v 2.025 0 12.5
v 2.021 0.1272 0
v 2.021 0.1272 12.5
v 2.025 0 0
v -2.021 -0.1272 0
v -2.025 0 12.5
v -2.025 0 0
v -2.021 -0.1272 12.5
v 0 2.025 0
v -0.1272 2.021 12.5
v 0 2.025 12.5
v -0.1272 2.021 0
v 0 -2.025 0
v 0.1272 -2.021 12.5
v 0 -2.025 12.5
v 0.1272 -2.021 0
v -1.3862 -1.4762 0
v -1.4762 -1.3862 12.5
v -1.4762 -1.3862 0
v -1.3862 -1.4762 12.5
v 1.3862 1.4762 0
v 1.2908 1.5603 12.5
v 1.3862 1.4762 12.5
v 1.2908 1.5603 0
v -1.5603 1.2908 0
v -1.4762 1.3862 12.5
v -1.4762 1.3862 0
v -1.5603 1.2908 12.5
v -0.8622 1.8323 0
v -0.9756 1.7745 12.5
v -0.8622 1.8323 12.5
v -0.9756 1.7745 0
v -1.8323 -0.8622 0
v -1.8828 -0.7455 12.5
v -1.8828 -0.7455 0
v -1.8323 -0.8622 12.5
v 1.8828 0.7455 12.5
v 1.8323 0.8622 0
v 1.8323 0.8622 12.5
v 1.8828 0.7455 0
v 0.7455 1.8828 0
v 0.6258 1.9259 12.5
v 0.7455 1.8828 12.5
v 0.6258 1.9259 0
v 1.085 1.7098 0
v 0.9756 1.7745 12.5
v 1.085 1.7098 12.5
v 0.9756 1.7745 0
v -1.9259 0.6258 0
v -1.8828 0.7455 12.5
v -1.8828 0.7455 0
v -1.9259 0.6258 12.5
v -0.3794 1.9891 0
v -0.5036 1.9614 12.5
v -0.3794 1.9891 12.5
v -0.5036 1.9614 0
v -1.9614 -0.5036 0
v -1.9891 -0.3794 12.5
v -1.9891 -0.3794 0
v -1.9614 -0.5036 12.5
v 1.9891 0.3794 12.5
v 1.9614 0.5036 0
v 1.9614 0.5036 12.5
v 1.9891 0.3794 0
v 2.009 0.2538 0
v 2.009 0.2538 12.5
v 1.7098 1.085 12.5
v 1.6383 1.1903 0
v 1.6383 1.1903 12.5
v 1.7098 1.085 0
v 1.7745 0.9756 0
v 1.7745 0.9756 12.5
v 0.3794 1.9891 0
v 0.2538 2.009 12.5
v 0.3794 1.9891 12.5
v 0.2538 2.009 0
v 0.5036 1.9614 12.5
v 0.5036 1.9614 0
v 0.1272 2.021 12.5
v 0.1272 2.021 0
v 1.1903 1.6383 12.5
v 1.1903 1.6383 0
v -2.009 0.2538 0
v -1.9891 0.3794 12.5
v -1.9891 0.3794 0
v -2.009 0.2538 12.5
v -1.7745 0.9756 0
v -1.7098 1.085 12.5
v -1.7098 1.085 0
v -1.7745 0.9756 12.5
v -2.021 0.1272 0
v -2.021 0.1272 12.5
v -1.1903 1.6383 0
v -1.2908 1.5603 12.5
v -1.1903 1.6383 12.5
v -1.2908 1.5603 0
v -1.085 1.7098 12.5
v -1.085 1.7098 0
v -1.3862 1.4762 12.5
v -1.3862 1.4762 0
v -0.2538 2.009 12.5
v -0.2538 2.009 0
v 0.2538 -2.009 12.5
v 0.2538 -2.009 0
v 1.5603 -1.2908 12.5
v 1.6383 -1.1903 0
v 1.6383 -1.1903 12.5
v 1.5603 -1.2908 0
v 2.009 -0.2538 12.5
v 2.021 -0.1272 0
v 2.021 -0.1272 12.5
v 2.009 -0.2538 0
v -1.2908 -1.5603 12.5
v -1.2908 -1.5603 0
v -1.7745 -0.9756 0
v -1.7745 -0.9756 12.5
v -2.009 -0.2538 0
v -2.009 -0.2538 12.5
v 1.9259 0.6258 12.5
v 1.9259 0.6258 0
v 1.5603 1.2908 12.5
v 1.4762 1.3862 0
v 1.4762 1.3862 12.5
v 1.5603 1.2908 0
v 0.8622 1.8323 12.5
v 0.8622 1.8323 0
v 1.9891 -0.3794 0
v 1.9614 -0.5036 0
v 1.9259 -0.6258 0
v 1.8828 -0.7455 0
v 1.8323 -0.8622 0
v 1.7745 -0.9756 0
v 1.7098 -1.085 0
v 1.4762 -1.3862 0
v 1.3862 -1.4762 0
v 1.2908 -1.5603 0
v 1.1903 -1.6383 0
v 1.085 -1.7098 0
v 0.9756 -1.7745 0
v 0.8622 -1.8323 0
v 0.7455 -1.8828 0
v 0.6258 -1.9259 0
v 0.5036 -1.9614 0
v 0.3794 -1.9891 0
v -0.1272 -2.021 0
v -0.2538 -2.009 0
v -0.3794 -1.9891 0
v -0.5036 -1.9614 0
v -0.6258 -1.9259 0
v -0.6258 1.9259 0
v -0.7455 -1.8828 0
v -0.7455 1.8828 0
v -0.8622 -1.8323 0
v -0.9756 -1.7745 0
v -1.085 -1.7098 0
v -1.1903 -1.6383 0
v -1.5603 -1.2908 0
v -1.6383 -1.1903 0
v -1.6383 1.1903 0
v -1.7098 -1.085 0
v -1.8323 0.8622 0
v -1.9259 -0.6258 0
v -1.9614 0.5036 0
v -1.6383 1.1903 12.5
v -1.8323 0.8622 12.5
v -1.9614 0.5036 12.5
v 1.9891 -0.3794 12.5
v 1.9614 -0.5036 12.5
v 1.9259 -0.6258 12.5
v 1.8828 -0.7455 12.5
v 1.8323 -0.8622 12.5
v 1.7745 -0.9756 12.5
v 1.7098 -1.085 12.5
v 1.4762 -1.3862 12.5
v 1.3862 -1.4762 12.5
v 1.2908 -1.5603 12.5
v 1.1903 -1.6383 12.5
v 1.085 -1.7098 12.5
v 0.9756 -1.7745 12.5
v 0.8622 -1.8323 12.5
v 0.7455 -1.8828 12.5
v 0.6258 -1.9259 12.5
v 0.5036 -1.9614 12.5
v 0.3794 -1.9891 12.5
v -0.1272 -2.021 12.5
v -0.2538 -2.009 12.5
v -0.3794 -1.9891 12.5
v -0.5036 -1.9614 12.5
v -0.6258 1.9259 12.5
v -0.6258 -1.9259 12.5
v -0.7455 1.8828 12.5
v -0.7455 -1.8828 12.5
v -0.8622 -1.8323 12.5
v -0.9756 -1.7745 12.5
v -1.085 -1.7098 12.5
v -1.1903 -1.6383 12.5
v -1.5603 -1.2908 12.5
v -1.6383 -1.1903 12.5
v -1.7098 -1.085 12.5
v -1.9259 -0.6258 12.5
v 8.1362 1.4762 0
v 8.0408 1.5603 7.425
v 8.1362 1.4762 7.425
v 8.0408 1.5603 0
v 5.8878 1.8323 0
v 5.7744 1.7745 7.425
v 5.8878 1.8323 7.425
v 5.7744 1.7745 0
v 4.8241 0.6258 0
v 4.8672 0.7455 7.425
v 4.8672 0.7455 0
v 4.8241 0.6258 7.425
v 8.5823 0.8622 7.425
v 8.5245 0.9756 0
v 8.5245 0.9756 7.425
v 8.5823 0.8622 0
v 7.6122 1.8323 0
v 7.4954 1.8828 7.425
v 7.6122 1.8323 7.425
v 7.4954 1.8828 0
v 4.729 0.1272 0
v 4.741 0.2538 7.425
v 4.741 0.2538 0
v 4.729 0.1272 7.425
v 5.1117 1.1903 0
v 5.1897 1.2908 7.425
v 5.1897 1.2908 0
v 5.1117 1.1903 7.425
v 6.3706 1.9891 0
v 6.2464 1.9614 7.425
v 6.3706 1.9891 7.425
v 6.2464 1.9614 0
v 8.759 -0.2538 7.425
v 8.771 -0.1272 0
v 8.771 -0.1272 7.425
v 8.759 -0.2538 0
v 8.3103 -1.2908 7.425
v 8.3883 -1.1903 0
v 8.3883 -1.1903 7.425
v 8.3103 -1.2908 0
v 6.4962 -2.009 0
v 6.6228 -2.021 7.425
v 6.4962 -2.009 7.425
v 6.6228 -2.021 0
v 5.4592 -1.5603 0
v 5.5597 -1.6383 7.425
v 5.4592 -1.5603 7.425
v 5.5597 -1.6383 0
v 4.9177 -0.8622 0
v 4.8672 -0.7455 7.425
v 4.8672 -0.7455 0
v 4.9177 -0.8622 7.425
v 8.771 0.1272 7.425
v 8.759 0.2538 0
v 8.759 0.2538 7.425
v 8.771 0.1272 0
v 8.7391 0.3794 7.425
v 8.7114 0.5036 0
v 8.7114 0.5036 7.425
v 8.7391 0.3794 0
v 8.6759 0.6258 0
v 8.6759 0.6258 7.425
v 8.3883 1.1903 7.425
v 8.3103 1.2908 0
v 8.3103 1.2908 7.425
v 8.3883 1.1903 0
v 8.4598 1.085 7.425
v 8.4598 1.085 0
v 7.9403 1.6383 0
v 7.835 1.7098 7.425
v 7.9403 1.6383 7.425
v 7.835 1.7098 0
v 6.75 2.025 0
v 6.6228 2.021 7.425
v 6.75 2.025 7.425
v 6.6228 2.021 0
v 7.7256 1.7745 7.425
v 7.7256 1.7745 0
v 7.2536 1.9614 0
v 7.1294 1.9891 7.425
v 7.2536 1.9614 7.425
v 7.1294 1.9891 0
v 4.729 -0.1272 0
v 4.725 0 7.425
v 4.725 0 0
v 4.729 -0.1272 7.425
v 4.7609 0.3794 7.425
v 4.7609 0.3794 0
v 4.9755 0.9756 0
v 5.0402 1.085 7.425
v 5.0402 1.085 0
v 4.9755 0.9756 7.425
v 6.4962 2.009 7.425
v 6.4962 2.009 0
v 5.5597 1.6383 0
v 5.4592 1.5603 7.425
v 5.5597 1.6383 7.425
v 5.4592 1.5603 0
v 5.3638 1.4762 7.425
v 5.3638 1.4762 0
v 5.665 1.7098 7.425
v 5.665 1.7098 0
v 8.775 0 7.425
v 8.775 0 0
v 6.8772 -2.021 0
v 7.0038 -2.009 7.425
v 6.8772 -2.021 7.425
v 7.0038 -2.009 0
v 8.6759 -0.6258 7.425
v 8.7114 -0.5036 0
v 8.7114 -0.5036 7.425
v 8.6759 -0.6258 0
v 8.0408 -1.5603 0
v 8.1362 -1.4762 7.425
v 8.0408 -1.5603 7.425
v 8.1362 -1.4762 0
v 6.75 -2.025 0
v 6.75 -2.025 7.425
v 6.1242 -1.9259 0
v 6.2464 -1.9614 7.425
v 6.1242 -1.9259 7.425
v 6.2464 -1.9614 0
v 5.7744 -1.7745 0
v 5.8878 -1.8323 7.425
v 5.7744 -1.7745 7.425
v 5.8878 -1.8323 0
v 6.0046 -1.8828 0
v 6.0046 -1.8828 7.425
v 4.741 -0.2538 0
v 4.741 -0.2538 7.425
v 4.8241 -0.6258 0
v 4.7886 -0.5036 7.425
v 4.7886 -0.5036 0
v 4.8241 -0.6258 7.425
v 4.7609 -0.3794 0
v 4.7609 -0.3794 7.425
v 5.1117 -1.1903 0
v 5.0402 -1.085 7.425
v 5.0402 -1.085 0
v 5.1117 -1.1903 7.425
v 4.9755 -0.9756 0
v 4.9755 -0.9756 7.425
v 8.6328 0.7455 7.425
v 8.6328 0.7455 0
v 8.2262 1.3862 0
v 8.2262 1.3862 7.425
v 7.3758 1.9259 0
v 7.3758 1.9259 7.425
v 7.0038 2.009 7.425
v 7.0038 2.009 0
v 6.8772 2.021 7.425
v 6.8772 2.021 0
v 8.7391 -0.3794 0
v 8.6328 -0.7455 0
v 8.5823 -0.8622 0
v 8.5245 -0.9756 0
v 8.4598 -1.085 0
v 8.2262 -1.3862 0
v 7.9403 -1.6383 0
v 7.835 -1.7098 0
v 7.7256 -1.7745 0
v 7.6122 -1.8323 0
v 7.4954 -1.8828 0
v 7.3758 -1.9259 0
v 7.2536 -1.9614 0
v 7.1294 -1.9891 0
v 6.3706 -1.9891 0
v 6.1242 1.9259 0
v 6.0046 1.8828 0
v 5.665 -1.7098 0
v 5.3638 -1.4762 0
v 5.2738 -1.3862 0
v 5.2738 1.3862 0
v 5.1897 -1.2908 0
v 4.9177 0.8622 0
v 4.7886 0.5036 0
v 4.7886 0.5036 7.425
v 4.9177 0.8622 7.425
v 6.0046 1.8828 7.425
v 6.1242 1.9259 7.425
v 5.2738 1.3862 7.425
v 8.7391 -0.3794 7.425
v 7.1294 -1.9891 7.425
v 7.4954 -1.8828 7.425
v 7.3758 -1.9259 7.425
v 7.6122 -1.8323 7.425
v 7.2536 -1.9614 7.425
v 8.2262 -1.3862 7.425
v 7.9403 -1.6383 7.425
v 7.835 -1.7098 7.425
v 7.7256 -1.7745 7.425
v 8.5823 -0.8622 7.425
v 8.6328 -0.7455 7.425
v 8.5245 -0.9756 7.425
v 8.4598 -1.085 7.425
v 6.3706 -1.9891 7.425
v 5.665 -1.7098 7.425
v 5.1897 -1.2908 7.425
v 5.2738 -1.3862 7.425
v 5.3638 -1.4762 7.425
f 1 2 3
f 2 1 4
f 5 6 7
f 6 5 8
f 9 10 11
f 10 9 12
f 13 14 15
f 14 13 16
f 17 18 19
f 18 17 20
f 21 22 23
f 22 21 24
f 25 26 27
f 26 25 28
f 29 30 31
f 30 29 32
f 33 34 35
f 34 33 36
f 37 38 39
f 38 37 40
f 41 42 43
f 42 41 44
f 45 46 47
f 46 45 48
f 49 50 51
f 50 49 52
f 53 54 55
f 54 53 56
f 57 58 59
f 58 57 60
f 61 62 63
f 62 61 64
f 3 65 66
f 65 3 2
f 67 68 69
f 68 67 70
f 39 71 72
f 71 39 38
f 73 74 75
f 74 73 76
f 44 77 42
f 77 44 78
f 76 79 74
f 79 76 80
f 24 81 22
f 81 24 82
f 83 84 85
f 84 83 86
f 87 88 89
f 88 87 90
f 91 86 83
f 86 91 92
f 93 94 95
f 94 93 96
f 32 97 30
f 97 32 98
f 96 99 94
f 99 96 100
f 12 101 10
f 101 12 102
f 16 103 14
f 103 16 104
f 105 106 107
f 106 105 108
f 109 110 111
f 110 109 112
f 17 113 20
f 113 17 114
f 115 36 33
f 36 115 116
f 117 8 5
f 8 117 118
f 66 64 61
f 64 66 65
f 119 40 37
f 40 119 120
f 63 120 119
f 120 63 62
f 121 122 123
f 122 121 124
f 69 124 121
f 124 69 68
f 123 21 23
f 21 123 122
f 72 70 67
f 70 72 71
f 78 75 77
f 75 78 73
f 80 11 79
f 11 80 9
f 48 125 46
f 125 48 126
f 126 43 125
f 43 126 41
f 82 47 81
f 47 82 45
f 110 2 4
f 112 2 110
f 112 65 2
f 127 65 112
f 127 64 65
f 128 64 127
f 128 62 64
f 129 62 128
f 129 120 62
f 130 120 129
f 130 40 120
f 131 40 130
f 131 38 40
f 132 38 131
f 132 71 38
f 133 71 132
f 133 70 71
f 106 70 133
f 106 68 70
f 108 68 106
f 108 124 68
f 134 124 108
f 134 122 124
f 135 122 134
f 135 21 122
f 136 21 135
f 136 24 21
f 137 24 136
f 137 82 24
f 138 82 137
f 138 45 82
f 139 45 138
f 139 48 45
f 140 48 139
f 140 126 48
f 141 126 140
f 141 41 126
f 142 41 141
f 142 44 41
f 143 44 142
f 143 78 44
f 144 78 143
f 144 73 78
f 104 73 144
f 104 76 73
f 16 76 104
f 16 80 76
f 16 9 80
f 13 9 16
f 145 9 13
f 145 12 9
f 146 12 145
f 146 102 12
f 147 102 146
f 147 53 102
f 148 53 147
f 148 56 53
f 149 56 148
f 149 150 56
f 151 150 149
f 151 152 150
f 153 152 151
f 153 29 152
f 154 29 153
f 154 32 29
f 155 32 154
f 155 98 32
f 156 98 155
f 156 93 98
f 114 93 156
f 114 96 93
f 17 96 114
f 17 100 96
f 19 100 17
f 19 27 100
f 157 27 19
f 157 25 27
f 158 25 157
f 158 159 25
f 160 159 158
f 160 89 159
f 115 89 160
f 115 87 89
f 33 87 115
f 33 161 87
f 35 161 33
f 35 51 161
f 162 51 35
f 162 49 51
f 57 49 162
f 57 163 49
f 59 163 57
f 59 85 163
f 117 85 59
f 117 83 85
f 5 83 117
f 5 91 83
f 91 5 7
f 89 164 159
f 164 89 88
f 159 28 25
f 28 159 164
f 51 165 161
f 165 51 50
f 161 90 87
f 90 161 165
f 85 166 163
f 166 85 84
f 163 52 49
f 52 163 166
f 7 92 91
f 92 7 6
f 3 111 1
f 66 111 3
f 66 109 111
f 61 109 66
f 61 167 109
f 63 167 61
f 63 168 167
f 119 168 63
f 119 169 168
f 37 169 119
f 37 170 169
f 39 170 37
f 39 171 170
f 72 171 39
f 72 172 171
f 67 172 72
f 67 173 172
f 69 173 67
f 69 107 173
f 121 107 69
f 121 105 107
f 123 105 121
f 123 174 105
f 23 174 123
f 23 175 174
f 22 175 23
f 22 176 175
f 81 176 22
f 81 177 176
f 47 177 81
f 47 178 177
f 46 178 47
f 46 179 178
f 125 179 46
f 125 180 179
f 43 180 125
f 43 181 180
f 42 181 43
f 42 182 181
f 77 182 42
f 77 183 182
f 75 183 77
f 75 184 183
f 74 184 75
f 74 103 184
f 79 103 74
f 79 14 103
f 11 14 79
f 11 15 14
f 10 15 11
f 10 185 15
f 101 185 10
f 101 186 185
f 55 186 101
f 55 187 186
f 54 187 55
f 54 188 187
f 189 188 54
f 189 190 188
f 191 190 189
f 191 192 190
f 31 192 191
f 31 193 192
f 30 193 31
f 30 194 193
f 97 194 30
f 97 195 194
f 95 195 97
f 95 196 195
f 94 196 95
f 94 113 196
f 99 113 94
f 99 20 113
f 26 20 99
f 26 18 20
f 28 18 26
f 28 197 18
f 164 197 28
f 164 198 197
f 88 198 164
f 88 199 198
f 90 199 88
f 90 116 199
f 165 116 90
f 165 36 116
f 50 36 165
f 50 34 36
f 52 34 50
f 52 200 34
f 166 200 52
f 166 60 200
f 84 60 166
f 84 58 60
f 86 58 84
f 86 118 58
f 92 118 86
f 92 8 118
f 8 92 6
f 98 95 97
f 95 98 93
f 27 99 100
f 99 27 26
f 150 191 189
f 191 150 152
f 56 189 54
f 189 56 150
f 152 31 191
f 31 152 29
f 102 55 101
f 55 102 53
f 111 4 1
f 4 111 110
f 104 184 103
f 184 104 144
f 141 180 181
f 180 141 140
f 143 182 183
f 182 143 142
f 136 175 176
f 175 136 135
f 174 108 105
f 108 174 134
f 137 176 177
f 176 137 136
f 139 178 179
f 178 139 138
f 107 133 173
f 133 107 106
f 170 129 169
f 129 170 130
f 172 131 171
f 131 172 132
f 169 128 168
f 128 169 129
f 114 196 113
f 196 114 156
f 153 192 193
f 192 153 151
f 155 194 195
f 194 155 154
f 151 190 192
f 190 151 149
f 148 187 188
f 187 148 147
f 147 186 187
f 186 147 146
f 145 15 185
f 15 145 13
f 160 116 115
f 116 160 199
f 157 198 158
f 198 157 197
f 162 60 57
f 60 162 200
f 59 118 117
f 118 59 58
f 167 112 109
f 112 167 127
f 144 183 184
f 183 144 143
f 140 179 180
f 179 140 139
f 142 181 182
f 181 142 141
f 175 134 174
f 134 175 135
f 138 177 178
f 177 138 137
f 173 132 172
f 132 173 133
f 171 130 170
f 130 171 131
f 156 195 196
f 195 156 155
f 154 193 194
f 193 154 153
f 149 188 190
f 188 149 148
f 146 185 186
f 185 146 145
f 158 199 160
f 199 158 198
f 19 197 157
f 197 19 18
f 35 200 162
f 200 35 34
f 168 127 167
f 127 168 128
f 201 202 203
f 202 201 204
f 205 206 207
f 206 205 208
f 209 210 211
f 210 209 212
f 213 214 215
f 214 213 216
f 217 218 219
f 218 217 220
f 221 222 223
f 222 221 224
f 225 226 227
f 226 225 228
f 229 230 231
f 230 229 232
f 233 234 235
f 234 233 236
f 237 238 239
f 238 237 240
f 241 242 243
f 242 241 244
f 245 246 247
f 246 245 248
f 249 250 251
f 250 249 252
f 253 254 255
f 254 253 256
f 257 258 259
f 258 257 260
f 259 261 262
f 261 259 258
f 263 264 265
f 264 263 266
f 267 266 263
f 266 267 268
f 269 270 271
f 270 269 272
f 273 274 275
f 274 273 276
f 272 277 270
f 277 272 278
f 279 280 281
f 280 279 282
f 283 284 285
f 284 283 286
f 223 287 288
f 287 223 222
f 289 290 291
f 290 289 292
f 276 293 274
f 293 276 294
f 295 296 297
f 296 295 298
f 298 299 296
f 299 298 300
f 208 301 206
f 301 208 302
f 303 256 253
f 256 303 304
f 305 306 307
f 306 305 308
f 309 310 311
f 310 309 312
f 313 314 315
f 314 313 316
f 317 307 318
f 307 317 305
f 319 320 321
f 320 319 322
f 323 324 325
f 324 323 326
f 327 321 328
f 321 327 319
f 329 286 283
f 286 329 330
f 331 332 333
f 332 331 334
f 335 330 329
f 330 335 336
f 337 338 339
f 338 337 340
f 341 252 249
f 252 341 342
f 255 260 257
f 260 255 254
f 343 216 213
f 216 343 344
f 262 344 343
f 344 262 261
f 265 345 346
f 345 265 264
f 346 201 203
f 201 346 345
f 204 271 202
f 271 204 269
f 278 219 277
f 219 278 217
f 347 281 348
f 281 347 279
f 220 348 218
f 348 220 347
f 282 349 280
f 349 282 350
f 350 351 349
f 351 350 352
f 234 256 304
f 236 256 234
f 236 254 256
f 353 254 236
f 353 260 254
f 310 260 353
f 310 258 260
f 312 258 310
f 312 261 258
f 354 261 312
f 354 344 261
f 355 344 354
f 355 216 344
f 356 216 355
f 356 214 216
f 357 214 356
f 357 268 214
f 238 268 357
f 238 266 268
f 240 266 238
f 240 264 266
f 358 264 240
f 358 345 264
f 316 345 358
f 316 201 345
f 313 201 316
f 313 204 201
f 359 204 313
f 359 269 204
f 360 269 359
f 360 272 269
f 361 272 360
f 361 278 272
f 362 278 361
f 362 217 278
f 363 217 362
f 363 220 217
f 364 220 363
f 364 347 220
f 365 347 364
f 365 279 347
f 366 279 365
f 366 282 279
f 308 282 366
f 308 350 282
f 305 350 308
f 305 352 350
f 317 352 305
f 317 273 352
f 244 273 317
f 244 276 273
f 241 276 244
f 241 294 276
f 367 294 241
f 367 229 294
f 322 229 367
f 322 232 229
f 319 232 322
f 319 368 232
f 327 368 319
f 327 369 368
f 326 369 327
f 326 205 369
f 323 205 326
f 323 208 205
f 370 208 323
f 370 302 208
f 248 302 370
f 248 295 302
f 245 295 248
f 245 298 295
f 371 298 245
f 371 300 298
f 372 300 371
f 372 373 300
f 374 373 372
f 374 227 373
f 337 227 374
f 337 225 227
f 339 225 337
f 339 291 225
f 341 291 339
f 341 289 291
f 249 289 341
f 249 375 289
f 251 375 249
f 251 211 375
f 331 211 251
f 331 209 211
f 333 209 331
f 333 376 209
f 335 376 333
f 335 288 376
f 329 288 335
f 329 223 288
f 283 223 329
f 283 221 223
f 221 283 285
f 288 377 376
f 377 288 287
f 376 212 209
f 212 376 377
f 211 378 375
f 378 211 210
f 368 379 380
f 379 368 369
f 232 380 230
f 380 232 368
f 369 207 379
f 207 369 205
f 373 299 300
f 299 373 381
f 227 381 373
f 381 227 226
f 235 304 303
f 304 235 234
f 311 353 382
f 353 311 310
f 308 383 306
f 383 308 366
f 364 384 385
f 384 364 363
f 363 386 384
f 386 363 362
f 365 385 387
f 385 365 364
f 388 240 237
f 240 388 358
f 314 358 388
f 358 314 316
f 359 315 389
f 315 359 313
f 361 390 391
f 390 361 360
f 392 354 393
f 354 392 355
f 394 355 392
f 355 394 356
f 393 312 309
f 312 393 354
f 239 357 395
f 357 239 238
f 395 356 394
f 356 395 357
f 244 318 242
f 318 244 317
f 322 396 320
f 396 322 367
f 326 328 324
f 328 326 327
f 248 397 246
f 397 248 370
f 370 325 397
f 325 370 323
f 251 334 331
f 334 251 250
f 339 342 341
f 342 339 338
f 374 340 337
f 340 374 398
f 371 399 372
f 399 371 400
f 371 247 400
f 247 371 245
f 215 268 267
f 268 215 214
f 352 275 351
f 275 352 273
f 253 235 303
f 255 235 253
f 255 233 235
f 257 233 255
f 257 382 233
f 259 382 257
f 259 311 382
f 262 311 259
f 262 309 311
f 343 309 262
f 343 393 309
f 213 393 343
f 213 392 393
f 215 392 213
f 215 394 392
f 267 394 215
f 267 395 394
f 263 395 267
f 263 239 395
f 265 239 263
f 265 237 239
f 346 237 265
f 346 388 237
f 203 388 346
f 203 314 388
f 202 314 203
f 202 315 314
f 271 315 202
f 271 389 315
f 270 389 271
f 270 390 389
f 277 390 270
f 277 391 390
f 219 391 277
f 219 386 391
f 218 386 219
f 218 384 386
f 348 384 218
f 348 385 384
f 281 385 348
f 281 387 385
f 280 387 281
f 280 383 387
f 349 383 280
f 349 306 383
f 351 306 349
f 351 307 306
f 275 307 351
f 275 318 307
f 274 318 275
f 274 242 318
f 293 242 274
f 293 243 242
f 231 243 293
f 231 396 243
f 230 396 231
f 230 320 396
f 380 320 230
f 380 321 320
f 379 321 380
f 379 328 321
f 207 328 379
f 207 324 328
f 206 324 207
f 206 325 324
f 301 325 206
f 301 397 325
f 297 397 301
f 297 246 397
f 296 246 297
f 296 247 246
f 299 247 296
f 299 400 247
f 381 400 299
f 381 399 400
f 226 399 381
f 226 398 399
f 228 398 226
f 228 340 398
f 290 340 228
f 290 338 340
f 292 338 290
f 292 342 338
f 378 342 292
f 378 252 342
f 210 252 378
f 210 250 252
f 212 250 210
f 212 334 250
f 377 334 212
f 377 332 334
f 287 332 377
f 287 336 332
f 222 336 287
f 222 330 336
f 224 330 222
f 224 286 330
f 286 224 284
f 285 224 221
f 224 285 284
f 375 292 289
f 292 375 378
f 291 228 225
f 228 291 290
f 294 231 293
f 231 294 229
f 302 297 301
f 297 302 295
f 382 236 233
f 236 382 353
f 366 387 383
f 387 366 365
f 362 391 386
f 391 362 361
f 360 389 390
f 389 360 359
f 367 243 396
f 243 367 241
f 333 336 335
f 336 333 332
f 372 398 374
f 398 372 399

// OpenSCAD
// file: measurements.scad
/*

 This file contains measurements for all components of the ball joint,
 designed for 1/2 inch schedule 40 PVC pipe.
 
 All measurements are in millimeters.

*/

bolt = 4.5;

ball_inner = 25;
ball_outer = 25;

pipe_inner = 14.85;
pipe_outer = 21.75;

stud_length = 51;
socket_size = [40, 15, 70];
// file: helper.scad
/*

 Miscelaneous helper functions

*/

function radius(diameter) = diameter / 2;

module bolt(length, diameter)
{
    rotate([0, 90, 0])
    {
        cylinder(h = length, r = radius(diameter));
    }
}

// So smooth~
$fn = 100;
// main file
/*

 This file is for the little pins that connect the printable stud together
 
*/

include <helper.scad>;
include <measurements.scad>;

// Ball pin
cylinder(h = ball_inner / 2, r = (bolt / 2) * 0.90);

// Pipe pin
translate([bolt * 1.5, 0, 0])
{
    cylinder(h = pipe_inner / 2, r = (bolt / 2) * 0.90);
}
